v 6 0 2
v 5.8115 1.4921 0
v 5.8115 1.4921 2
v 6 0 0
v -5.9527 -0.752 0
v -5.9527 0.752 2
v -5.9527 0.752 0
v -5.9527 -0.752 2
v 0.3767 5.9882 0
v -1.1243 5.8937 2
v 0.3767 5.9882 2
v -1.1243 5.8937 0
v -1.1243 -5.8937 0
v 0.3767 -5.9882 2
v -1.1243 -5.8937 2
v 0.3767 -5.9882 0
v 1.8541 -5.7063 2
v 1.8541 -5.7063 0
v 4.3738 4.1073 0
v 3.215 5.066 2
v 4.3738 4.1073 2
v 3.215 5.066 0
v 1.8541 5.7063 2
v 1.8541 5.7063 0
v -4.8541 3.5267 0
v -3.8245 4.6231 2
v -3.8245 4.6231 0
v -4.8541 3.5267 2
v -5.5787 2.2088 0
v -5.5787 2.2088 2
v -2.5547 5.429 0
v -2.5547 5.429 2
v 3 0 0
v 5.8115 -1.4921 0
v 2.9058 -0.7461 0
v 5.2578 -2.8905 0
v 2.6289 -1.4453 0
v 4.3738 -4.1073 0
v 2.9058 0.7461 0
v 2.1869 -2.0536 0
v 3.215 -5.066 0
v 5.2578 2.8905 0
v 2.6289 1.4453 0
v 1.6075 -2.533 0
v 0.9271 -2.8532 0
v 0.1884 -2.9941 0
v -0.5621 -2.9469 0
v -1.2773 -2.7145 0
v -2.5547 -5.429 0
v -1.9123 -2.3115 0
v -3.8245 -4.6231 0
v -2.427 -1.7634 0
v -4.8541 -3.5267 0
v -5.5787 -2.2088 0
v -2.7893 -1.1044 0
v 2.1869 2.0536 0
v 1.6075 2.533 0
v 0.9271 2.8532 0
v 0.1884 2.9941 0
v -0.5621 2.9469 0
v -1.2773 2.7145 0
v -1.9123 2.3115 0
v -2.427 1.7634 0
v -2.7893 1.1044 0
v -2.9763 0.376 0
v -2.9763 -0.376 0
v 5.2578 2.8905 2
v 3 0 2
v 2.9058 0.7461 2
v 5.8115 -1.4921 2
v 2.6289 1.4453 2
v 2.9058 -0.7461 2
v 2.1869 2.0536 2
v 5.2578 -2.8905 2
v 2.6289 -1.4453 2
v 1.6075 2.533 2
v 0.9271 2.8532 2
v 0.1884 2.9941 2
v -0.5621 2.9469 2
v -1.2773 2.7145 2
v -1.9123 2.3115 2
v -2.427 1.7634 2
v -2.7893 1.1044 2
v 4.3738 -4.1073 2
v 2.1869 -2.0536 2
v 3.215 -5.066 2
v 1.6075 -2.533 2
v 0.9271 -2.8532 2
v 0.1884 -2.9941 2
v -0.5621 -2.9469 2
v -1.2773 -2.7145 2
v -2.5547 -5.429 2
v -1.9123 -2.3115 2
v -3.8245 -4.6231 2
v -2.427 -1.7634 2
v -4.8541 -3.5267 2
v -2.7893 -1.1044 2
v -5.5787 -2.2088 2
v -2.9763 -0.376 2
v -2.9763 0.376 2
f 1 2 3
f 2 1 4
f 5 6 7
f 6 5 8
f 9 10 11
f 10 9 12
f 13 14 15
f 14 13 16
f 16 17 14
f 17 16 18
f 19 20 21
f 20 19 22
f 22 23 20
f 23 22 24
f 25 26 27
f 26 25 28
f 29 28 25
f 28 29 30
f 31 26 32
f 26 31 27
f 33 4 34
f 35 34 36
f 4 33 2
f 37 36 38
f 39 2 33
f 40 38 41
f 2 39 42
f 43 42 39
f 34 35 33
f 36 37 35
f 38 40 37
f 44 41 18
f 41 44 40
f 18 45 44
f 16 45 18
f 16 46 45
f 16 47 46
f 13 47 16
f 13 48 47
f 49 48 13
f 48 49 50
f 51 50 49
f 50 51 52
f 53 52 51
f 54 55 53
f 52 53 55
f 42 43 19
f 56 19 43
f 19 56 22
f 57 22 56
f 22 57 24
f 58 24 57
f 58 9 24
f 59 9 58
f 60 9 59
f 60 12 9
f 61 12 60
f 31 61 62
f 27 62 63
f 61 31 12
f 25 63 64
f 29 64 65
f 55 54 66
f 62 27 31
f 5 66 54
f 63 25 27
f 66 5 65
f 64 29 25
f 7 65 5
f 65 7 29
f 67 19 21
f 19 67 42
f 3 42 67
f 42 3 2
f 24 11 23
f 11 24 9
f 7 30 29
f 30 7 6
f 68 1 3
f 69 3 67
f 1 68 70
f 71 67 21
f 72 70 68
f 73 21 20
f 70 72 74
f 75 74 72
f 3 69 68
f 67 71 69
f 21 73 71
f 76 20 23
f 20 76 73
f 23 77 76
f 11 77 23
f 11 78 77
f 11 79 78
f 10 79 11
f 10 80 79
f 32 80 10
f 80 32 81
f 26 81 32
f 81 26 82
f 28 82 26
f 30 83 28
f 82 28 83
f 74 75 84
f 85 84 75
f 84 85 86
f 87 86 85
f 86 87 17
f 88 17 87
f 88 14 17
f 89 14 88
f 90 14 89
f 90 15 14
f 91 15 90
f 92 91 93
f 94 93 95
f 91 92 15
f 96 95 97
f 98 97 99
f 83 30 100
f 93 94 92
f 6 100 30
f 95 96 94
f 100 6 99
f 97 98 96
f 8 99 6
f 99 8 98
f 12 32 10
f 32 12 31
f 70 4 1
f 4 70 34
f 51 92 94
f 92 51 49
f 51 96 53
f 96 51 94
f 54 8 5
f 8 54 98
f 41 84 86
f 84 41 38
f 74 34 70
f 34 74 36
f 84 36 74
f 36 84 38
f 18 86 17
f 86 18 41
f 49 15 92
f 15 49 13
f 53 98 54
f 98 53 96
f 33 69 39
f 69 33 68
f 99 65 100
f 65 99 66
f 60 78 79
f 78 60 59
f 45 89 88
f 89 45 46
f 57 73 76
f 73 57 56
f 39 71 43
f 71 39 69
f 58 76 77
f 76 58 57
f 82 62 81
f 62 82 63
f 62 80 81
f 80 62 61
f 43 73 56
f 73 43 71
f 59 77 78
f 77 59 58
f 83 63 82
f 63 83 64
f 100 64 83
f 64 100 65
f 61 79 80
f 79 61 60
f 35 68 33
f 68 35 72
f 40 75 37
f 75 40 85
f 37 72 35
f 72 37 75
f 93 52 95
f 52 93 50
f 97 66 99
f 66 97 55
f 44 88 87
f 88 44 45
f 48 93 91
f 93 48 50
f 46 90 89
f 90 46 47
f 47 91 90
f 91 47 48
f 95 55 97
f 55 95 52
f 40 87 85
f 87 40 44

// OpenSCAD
quality=25;

pin_gap_radius=3;

backing_thickness=2;



difference()
{
  cylinder(r=pin_gap_radius*2,h=backing_thickness,$fn=quality);
  cylinder(r=pin_gap_radius,h=backing_thickness,$fn=quality);
        
}
